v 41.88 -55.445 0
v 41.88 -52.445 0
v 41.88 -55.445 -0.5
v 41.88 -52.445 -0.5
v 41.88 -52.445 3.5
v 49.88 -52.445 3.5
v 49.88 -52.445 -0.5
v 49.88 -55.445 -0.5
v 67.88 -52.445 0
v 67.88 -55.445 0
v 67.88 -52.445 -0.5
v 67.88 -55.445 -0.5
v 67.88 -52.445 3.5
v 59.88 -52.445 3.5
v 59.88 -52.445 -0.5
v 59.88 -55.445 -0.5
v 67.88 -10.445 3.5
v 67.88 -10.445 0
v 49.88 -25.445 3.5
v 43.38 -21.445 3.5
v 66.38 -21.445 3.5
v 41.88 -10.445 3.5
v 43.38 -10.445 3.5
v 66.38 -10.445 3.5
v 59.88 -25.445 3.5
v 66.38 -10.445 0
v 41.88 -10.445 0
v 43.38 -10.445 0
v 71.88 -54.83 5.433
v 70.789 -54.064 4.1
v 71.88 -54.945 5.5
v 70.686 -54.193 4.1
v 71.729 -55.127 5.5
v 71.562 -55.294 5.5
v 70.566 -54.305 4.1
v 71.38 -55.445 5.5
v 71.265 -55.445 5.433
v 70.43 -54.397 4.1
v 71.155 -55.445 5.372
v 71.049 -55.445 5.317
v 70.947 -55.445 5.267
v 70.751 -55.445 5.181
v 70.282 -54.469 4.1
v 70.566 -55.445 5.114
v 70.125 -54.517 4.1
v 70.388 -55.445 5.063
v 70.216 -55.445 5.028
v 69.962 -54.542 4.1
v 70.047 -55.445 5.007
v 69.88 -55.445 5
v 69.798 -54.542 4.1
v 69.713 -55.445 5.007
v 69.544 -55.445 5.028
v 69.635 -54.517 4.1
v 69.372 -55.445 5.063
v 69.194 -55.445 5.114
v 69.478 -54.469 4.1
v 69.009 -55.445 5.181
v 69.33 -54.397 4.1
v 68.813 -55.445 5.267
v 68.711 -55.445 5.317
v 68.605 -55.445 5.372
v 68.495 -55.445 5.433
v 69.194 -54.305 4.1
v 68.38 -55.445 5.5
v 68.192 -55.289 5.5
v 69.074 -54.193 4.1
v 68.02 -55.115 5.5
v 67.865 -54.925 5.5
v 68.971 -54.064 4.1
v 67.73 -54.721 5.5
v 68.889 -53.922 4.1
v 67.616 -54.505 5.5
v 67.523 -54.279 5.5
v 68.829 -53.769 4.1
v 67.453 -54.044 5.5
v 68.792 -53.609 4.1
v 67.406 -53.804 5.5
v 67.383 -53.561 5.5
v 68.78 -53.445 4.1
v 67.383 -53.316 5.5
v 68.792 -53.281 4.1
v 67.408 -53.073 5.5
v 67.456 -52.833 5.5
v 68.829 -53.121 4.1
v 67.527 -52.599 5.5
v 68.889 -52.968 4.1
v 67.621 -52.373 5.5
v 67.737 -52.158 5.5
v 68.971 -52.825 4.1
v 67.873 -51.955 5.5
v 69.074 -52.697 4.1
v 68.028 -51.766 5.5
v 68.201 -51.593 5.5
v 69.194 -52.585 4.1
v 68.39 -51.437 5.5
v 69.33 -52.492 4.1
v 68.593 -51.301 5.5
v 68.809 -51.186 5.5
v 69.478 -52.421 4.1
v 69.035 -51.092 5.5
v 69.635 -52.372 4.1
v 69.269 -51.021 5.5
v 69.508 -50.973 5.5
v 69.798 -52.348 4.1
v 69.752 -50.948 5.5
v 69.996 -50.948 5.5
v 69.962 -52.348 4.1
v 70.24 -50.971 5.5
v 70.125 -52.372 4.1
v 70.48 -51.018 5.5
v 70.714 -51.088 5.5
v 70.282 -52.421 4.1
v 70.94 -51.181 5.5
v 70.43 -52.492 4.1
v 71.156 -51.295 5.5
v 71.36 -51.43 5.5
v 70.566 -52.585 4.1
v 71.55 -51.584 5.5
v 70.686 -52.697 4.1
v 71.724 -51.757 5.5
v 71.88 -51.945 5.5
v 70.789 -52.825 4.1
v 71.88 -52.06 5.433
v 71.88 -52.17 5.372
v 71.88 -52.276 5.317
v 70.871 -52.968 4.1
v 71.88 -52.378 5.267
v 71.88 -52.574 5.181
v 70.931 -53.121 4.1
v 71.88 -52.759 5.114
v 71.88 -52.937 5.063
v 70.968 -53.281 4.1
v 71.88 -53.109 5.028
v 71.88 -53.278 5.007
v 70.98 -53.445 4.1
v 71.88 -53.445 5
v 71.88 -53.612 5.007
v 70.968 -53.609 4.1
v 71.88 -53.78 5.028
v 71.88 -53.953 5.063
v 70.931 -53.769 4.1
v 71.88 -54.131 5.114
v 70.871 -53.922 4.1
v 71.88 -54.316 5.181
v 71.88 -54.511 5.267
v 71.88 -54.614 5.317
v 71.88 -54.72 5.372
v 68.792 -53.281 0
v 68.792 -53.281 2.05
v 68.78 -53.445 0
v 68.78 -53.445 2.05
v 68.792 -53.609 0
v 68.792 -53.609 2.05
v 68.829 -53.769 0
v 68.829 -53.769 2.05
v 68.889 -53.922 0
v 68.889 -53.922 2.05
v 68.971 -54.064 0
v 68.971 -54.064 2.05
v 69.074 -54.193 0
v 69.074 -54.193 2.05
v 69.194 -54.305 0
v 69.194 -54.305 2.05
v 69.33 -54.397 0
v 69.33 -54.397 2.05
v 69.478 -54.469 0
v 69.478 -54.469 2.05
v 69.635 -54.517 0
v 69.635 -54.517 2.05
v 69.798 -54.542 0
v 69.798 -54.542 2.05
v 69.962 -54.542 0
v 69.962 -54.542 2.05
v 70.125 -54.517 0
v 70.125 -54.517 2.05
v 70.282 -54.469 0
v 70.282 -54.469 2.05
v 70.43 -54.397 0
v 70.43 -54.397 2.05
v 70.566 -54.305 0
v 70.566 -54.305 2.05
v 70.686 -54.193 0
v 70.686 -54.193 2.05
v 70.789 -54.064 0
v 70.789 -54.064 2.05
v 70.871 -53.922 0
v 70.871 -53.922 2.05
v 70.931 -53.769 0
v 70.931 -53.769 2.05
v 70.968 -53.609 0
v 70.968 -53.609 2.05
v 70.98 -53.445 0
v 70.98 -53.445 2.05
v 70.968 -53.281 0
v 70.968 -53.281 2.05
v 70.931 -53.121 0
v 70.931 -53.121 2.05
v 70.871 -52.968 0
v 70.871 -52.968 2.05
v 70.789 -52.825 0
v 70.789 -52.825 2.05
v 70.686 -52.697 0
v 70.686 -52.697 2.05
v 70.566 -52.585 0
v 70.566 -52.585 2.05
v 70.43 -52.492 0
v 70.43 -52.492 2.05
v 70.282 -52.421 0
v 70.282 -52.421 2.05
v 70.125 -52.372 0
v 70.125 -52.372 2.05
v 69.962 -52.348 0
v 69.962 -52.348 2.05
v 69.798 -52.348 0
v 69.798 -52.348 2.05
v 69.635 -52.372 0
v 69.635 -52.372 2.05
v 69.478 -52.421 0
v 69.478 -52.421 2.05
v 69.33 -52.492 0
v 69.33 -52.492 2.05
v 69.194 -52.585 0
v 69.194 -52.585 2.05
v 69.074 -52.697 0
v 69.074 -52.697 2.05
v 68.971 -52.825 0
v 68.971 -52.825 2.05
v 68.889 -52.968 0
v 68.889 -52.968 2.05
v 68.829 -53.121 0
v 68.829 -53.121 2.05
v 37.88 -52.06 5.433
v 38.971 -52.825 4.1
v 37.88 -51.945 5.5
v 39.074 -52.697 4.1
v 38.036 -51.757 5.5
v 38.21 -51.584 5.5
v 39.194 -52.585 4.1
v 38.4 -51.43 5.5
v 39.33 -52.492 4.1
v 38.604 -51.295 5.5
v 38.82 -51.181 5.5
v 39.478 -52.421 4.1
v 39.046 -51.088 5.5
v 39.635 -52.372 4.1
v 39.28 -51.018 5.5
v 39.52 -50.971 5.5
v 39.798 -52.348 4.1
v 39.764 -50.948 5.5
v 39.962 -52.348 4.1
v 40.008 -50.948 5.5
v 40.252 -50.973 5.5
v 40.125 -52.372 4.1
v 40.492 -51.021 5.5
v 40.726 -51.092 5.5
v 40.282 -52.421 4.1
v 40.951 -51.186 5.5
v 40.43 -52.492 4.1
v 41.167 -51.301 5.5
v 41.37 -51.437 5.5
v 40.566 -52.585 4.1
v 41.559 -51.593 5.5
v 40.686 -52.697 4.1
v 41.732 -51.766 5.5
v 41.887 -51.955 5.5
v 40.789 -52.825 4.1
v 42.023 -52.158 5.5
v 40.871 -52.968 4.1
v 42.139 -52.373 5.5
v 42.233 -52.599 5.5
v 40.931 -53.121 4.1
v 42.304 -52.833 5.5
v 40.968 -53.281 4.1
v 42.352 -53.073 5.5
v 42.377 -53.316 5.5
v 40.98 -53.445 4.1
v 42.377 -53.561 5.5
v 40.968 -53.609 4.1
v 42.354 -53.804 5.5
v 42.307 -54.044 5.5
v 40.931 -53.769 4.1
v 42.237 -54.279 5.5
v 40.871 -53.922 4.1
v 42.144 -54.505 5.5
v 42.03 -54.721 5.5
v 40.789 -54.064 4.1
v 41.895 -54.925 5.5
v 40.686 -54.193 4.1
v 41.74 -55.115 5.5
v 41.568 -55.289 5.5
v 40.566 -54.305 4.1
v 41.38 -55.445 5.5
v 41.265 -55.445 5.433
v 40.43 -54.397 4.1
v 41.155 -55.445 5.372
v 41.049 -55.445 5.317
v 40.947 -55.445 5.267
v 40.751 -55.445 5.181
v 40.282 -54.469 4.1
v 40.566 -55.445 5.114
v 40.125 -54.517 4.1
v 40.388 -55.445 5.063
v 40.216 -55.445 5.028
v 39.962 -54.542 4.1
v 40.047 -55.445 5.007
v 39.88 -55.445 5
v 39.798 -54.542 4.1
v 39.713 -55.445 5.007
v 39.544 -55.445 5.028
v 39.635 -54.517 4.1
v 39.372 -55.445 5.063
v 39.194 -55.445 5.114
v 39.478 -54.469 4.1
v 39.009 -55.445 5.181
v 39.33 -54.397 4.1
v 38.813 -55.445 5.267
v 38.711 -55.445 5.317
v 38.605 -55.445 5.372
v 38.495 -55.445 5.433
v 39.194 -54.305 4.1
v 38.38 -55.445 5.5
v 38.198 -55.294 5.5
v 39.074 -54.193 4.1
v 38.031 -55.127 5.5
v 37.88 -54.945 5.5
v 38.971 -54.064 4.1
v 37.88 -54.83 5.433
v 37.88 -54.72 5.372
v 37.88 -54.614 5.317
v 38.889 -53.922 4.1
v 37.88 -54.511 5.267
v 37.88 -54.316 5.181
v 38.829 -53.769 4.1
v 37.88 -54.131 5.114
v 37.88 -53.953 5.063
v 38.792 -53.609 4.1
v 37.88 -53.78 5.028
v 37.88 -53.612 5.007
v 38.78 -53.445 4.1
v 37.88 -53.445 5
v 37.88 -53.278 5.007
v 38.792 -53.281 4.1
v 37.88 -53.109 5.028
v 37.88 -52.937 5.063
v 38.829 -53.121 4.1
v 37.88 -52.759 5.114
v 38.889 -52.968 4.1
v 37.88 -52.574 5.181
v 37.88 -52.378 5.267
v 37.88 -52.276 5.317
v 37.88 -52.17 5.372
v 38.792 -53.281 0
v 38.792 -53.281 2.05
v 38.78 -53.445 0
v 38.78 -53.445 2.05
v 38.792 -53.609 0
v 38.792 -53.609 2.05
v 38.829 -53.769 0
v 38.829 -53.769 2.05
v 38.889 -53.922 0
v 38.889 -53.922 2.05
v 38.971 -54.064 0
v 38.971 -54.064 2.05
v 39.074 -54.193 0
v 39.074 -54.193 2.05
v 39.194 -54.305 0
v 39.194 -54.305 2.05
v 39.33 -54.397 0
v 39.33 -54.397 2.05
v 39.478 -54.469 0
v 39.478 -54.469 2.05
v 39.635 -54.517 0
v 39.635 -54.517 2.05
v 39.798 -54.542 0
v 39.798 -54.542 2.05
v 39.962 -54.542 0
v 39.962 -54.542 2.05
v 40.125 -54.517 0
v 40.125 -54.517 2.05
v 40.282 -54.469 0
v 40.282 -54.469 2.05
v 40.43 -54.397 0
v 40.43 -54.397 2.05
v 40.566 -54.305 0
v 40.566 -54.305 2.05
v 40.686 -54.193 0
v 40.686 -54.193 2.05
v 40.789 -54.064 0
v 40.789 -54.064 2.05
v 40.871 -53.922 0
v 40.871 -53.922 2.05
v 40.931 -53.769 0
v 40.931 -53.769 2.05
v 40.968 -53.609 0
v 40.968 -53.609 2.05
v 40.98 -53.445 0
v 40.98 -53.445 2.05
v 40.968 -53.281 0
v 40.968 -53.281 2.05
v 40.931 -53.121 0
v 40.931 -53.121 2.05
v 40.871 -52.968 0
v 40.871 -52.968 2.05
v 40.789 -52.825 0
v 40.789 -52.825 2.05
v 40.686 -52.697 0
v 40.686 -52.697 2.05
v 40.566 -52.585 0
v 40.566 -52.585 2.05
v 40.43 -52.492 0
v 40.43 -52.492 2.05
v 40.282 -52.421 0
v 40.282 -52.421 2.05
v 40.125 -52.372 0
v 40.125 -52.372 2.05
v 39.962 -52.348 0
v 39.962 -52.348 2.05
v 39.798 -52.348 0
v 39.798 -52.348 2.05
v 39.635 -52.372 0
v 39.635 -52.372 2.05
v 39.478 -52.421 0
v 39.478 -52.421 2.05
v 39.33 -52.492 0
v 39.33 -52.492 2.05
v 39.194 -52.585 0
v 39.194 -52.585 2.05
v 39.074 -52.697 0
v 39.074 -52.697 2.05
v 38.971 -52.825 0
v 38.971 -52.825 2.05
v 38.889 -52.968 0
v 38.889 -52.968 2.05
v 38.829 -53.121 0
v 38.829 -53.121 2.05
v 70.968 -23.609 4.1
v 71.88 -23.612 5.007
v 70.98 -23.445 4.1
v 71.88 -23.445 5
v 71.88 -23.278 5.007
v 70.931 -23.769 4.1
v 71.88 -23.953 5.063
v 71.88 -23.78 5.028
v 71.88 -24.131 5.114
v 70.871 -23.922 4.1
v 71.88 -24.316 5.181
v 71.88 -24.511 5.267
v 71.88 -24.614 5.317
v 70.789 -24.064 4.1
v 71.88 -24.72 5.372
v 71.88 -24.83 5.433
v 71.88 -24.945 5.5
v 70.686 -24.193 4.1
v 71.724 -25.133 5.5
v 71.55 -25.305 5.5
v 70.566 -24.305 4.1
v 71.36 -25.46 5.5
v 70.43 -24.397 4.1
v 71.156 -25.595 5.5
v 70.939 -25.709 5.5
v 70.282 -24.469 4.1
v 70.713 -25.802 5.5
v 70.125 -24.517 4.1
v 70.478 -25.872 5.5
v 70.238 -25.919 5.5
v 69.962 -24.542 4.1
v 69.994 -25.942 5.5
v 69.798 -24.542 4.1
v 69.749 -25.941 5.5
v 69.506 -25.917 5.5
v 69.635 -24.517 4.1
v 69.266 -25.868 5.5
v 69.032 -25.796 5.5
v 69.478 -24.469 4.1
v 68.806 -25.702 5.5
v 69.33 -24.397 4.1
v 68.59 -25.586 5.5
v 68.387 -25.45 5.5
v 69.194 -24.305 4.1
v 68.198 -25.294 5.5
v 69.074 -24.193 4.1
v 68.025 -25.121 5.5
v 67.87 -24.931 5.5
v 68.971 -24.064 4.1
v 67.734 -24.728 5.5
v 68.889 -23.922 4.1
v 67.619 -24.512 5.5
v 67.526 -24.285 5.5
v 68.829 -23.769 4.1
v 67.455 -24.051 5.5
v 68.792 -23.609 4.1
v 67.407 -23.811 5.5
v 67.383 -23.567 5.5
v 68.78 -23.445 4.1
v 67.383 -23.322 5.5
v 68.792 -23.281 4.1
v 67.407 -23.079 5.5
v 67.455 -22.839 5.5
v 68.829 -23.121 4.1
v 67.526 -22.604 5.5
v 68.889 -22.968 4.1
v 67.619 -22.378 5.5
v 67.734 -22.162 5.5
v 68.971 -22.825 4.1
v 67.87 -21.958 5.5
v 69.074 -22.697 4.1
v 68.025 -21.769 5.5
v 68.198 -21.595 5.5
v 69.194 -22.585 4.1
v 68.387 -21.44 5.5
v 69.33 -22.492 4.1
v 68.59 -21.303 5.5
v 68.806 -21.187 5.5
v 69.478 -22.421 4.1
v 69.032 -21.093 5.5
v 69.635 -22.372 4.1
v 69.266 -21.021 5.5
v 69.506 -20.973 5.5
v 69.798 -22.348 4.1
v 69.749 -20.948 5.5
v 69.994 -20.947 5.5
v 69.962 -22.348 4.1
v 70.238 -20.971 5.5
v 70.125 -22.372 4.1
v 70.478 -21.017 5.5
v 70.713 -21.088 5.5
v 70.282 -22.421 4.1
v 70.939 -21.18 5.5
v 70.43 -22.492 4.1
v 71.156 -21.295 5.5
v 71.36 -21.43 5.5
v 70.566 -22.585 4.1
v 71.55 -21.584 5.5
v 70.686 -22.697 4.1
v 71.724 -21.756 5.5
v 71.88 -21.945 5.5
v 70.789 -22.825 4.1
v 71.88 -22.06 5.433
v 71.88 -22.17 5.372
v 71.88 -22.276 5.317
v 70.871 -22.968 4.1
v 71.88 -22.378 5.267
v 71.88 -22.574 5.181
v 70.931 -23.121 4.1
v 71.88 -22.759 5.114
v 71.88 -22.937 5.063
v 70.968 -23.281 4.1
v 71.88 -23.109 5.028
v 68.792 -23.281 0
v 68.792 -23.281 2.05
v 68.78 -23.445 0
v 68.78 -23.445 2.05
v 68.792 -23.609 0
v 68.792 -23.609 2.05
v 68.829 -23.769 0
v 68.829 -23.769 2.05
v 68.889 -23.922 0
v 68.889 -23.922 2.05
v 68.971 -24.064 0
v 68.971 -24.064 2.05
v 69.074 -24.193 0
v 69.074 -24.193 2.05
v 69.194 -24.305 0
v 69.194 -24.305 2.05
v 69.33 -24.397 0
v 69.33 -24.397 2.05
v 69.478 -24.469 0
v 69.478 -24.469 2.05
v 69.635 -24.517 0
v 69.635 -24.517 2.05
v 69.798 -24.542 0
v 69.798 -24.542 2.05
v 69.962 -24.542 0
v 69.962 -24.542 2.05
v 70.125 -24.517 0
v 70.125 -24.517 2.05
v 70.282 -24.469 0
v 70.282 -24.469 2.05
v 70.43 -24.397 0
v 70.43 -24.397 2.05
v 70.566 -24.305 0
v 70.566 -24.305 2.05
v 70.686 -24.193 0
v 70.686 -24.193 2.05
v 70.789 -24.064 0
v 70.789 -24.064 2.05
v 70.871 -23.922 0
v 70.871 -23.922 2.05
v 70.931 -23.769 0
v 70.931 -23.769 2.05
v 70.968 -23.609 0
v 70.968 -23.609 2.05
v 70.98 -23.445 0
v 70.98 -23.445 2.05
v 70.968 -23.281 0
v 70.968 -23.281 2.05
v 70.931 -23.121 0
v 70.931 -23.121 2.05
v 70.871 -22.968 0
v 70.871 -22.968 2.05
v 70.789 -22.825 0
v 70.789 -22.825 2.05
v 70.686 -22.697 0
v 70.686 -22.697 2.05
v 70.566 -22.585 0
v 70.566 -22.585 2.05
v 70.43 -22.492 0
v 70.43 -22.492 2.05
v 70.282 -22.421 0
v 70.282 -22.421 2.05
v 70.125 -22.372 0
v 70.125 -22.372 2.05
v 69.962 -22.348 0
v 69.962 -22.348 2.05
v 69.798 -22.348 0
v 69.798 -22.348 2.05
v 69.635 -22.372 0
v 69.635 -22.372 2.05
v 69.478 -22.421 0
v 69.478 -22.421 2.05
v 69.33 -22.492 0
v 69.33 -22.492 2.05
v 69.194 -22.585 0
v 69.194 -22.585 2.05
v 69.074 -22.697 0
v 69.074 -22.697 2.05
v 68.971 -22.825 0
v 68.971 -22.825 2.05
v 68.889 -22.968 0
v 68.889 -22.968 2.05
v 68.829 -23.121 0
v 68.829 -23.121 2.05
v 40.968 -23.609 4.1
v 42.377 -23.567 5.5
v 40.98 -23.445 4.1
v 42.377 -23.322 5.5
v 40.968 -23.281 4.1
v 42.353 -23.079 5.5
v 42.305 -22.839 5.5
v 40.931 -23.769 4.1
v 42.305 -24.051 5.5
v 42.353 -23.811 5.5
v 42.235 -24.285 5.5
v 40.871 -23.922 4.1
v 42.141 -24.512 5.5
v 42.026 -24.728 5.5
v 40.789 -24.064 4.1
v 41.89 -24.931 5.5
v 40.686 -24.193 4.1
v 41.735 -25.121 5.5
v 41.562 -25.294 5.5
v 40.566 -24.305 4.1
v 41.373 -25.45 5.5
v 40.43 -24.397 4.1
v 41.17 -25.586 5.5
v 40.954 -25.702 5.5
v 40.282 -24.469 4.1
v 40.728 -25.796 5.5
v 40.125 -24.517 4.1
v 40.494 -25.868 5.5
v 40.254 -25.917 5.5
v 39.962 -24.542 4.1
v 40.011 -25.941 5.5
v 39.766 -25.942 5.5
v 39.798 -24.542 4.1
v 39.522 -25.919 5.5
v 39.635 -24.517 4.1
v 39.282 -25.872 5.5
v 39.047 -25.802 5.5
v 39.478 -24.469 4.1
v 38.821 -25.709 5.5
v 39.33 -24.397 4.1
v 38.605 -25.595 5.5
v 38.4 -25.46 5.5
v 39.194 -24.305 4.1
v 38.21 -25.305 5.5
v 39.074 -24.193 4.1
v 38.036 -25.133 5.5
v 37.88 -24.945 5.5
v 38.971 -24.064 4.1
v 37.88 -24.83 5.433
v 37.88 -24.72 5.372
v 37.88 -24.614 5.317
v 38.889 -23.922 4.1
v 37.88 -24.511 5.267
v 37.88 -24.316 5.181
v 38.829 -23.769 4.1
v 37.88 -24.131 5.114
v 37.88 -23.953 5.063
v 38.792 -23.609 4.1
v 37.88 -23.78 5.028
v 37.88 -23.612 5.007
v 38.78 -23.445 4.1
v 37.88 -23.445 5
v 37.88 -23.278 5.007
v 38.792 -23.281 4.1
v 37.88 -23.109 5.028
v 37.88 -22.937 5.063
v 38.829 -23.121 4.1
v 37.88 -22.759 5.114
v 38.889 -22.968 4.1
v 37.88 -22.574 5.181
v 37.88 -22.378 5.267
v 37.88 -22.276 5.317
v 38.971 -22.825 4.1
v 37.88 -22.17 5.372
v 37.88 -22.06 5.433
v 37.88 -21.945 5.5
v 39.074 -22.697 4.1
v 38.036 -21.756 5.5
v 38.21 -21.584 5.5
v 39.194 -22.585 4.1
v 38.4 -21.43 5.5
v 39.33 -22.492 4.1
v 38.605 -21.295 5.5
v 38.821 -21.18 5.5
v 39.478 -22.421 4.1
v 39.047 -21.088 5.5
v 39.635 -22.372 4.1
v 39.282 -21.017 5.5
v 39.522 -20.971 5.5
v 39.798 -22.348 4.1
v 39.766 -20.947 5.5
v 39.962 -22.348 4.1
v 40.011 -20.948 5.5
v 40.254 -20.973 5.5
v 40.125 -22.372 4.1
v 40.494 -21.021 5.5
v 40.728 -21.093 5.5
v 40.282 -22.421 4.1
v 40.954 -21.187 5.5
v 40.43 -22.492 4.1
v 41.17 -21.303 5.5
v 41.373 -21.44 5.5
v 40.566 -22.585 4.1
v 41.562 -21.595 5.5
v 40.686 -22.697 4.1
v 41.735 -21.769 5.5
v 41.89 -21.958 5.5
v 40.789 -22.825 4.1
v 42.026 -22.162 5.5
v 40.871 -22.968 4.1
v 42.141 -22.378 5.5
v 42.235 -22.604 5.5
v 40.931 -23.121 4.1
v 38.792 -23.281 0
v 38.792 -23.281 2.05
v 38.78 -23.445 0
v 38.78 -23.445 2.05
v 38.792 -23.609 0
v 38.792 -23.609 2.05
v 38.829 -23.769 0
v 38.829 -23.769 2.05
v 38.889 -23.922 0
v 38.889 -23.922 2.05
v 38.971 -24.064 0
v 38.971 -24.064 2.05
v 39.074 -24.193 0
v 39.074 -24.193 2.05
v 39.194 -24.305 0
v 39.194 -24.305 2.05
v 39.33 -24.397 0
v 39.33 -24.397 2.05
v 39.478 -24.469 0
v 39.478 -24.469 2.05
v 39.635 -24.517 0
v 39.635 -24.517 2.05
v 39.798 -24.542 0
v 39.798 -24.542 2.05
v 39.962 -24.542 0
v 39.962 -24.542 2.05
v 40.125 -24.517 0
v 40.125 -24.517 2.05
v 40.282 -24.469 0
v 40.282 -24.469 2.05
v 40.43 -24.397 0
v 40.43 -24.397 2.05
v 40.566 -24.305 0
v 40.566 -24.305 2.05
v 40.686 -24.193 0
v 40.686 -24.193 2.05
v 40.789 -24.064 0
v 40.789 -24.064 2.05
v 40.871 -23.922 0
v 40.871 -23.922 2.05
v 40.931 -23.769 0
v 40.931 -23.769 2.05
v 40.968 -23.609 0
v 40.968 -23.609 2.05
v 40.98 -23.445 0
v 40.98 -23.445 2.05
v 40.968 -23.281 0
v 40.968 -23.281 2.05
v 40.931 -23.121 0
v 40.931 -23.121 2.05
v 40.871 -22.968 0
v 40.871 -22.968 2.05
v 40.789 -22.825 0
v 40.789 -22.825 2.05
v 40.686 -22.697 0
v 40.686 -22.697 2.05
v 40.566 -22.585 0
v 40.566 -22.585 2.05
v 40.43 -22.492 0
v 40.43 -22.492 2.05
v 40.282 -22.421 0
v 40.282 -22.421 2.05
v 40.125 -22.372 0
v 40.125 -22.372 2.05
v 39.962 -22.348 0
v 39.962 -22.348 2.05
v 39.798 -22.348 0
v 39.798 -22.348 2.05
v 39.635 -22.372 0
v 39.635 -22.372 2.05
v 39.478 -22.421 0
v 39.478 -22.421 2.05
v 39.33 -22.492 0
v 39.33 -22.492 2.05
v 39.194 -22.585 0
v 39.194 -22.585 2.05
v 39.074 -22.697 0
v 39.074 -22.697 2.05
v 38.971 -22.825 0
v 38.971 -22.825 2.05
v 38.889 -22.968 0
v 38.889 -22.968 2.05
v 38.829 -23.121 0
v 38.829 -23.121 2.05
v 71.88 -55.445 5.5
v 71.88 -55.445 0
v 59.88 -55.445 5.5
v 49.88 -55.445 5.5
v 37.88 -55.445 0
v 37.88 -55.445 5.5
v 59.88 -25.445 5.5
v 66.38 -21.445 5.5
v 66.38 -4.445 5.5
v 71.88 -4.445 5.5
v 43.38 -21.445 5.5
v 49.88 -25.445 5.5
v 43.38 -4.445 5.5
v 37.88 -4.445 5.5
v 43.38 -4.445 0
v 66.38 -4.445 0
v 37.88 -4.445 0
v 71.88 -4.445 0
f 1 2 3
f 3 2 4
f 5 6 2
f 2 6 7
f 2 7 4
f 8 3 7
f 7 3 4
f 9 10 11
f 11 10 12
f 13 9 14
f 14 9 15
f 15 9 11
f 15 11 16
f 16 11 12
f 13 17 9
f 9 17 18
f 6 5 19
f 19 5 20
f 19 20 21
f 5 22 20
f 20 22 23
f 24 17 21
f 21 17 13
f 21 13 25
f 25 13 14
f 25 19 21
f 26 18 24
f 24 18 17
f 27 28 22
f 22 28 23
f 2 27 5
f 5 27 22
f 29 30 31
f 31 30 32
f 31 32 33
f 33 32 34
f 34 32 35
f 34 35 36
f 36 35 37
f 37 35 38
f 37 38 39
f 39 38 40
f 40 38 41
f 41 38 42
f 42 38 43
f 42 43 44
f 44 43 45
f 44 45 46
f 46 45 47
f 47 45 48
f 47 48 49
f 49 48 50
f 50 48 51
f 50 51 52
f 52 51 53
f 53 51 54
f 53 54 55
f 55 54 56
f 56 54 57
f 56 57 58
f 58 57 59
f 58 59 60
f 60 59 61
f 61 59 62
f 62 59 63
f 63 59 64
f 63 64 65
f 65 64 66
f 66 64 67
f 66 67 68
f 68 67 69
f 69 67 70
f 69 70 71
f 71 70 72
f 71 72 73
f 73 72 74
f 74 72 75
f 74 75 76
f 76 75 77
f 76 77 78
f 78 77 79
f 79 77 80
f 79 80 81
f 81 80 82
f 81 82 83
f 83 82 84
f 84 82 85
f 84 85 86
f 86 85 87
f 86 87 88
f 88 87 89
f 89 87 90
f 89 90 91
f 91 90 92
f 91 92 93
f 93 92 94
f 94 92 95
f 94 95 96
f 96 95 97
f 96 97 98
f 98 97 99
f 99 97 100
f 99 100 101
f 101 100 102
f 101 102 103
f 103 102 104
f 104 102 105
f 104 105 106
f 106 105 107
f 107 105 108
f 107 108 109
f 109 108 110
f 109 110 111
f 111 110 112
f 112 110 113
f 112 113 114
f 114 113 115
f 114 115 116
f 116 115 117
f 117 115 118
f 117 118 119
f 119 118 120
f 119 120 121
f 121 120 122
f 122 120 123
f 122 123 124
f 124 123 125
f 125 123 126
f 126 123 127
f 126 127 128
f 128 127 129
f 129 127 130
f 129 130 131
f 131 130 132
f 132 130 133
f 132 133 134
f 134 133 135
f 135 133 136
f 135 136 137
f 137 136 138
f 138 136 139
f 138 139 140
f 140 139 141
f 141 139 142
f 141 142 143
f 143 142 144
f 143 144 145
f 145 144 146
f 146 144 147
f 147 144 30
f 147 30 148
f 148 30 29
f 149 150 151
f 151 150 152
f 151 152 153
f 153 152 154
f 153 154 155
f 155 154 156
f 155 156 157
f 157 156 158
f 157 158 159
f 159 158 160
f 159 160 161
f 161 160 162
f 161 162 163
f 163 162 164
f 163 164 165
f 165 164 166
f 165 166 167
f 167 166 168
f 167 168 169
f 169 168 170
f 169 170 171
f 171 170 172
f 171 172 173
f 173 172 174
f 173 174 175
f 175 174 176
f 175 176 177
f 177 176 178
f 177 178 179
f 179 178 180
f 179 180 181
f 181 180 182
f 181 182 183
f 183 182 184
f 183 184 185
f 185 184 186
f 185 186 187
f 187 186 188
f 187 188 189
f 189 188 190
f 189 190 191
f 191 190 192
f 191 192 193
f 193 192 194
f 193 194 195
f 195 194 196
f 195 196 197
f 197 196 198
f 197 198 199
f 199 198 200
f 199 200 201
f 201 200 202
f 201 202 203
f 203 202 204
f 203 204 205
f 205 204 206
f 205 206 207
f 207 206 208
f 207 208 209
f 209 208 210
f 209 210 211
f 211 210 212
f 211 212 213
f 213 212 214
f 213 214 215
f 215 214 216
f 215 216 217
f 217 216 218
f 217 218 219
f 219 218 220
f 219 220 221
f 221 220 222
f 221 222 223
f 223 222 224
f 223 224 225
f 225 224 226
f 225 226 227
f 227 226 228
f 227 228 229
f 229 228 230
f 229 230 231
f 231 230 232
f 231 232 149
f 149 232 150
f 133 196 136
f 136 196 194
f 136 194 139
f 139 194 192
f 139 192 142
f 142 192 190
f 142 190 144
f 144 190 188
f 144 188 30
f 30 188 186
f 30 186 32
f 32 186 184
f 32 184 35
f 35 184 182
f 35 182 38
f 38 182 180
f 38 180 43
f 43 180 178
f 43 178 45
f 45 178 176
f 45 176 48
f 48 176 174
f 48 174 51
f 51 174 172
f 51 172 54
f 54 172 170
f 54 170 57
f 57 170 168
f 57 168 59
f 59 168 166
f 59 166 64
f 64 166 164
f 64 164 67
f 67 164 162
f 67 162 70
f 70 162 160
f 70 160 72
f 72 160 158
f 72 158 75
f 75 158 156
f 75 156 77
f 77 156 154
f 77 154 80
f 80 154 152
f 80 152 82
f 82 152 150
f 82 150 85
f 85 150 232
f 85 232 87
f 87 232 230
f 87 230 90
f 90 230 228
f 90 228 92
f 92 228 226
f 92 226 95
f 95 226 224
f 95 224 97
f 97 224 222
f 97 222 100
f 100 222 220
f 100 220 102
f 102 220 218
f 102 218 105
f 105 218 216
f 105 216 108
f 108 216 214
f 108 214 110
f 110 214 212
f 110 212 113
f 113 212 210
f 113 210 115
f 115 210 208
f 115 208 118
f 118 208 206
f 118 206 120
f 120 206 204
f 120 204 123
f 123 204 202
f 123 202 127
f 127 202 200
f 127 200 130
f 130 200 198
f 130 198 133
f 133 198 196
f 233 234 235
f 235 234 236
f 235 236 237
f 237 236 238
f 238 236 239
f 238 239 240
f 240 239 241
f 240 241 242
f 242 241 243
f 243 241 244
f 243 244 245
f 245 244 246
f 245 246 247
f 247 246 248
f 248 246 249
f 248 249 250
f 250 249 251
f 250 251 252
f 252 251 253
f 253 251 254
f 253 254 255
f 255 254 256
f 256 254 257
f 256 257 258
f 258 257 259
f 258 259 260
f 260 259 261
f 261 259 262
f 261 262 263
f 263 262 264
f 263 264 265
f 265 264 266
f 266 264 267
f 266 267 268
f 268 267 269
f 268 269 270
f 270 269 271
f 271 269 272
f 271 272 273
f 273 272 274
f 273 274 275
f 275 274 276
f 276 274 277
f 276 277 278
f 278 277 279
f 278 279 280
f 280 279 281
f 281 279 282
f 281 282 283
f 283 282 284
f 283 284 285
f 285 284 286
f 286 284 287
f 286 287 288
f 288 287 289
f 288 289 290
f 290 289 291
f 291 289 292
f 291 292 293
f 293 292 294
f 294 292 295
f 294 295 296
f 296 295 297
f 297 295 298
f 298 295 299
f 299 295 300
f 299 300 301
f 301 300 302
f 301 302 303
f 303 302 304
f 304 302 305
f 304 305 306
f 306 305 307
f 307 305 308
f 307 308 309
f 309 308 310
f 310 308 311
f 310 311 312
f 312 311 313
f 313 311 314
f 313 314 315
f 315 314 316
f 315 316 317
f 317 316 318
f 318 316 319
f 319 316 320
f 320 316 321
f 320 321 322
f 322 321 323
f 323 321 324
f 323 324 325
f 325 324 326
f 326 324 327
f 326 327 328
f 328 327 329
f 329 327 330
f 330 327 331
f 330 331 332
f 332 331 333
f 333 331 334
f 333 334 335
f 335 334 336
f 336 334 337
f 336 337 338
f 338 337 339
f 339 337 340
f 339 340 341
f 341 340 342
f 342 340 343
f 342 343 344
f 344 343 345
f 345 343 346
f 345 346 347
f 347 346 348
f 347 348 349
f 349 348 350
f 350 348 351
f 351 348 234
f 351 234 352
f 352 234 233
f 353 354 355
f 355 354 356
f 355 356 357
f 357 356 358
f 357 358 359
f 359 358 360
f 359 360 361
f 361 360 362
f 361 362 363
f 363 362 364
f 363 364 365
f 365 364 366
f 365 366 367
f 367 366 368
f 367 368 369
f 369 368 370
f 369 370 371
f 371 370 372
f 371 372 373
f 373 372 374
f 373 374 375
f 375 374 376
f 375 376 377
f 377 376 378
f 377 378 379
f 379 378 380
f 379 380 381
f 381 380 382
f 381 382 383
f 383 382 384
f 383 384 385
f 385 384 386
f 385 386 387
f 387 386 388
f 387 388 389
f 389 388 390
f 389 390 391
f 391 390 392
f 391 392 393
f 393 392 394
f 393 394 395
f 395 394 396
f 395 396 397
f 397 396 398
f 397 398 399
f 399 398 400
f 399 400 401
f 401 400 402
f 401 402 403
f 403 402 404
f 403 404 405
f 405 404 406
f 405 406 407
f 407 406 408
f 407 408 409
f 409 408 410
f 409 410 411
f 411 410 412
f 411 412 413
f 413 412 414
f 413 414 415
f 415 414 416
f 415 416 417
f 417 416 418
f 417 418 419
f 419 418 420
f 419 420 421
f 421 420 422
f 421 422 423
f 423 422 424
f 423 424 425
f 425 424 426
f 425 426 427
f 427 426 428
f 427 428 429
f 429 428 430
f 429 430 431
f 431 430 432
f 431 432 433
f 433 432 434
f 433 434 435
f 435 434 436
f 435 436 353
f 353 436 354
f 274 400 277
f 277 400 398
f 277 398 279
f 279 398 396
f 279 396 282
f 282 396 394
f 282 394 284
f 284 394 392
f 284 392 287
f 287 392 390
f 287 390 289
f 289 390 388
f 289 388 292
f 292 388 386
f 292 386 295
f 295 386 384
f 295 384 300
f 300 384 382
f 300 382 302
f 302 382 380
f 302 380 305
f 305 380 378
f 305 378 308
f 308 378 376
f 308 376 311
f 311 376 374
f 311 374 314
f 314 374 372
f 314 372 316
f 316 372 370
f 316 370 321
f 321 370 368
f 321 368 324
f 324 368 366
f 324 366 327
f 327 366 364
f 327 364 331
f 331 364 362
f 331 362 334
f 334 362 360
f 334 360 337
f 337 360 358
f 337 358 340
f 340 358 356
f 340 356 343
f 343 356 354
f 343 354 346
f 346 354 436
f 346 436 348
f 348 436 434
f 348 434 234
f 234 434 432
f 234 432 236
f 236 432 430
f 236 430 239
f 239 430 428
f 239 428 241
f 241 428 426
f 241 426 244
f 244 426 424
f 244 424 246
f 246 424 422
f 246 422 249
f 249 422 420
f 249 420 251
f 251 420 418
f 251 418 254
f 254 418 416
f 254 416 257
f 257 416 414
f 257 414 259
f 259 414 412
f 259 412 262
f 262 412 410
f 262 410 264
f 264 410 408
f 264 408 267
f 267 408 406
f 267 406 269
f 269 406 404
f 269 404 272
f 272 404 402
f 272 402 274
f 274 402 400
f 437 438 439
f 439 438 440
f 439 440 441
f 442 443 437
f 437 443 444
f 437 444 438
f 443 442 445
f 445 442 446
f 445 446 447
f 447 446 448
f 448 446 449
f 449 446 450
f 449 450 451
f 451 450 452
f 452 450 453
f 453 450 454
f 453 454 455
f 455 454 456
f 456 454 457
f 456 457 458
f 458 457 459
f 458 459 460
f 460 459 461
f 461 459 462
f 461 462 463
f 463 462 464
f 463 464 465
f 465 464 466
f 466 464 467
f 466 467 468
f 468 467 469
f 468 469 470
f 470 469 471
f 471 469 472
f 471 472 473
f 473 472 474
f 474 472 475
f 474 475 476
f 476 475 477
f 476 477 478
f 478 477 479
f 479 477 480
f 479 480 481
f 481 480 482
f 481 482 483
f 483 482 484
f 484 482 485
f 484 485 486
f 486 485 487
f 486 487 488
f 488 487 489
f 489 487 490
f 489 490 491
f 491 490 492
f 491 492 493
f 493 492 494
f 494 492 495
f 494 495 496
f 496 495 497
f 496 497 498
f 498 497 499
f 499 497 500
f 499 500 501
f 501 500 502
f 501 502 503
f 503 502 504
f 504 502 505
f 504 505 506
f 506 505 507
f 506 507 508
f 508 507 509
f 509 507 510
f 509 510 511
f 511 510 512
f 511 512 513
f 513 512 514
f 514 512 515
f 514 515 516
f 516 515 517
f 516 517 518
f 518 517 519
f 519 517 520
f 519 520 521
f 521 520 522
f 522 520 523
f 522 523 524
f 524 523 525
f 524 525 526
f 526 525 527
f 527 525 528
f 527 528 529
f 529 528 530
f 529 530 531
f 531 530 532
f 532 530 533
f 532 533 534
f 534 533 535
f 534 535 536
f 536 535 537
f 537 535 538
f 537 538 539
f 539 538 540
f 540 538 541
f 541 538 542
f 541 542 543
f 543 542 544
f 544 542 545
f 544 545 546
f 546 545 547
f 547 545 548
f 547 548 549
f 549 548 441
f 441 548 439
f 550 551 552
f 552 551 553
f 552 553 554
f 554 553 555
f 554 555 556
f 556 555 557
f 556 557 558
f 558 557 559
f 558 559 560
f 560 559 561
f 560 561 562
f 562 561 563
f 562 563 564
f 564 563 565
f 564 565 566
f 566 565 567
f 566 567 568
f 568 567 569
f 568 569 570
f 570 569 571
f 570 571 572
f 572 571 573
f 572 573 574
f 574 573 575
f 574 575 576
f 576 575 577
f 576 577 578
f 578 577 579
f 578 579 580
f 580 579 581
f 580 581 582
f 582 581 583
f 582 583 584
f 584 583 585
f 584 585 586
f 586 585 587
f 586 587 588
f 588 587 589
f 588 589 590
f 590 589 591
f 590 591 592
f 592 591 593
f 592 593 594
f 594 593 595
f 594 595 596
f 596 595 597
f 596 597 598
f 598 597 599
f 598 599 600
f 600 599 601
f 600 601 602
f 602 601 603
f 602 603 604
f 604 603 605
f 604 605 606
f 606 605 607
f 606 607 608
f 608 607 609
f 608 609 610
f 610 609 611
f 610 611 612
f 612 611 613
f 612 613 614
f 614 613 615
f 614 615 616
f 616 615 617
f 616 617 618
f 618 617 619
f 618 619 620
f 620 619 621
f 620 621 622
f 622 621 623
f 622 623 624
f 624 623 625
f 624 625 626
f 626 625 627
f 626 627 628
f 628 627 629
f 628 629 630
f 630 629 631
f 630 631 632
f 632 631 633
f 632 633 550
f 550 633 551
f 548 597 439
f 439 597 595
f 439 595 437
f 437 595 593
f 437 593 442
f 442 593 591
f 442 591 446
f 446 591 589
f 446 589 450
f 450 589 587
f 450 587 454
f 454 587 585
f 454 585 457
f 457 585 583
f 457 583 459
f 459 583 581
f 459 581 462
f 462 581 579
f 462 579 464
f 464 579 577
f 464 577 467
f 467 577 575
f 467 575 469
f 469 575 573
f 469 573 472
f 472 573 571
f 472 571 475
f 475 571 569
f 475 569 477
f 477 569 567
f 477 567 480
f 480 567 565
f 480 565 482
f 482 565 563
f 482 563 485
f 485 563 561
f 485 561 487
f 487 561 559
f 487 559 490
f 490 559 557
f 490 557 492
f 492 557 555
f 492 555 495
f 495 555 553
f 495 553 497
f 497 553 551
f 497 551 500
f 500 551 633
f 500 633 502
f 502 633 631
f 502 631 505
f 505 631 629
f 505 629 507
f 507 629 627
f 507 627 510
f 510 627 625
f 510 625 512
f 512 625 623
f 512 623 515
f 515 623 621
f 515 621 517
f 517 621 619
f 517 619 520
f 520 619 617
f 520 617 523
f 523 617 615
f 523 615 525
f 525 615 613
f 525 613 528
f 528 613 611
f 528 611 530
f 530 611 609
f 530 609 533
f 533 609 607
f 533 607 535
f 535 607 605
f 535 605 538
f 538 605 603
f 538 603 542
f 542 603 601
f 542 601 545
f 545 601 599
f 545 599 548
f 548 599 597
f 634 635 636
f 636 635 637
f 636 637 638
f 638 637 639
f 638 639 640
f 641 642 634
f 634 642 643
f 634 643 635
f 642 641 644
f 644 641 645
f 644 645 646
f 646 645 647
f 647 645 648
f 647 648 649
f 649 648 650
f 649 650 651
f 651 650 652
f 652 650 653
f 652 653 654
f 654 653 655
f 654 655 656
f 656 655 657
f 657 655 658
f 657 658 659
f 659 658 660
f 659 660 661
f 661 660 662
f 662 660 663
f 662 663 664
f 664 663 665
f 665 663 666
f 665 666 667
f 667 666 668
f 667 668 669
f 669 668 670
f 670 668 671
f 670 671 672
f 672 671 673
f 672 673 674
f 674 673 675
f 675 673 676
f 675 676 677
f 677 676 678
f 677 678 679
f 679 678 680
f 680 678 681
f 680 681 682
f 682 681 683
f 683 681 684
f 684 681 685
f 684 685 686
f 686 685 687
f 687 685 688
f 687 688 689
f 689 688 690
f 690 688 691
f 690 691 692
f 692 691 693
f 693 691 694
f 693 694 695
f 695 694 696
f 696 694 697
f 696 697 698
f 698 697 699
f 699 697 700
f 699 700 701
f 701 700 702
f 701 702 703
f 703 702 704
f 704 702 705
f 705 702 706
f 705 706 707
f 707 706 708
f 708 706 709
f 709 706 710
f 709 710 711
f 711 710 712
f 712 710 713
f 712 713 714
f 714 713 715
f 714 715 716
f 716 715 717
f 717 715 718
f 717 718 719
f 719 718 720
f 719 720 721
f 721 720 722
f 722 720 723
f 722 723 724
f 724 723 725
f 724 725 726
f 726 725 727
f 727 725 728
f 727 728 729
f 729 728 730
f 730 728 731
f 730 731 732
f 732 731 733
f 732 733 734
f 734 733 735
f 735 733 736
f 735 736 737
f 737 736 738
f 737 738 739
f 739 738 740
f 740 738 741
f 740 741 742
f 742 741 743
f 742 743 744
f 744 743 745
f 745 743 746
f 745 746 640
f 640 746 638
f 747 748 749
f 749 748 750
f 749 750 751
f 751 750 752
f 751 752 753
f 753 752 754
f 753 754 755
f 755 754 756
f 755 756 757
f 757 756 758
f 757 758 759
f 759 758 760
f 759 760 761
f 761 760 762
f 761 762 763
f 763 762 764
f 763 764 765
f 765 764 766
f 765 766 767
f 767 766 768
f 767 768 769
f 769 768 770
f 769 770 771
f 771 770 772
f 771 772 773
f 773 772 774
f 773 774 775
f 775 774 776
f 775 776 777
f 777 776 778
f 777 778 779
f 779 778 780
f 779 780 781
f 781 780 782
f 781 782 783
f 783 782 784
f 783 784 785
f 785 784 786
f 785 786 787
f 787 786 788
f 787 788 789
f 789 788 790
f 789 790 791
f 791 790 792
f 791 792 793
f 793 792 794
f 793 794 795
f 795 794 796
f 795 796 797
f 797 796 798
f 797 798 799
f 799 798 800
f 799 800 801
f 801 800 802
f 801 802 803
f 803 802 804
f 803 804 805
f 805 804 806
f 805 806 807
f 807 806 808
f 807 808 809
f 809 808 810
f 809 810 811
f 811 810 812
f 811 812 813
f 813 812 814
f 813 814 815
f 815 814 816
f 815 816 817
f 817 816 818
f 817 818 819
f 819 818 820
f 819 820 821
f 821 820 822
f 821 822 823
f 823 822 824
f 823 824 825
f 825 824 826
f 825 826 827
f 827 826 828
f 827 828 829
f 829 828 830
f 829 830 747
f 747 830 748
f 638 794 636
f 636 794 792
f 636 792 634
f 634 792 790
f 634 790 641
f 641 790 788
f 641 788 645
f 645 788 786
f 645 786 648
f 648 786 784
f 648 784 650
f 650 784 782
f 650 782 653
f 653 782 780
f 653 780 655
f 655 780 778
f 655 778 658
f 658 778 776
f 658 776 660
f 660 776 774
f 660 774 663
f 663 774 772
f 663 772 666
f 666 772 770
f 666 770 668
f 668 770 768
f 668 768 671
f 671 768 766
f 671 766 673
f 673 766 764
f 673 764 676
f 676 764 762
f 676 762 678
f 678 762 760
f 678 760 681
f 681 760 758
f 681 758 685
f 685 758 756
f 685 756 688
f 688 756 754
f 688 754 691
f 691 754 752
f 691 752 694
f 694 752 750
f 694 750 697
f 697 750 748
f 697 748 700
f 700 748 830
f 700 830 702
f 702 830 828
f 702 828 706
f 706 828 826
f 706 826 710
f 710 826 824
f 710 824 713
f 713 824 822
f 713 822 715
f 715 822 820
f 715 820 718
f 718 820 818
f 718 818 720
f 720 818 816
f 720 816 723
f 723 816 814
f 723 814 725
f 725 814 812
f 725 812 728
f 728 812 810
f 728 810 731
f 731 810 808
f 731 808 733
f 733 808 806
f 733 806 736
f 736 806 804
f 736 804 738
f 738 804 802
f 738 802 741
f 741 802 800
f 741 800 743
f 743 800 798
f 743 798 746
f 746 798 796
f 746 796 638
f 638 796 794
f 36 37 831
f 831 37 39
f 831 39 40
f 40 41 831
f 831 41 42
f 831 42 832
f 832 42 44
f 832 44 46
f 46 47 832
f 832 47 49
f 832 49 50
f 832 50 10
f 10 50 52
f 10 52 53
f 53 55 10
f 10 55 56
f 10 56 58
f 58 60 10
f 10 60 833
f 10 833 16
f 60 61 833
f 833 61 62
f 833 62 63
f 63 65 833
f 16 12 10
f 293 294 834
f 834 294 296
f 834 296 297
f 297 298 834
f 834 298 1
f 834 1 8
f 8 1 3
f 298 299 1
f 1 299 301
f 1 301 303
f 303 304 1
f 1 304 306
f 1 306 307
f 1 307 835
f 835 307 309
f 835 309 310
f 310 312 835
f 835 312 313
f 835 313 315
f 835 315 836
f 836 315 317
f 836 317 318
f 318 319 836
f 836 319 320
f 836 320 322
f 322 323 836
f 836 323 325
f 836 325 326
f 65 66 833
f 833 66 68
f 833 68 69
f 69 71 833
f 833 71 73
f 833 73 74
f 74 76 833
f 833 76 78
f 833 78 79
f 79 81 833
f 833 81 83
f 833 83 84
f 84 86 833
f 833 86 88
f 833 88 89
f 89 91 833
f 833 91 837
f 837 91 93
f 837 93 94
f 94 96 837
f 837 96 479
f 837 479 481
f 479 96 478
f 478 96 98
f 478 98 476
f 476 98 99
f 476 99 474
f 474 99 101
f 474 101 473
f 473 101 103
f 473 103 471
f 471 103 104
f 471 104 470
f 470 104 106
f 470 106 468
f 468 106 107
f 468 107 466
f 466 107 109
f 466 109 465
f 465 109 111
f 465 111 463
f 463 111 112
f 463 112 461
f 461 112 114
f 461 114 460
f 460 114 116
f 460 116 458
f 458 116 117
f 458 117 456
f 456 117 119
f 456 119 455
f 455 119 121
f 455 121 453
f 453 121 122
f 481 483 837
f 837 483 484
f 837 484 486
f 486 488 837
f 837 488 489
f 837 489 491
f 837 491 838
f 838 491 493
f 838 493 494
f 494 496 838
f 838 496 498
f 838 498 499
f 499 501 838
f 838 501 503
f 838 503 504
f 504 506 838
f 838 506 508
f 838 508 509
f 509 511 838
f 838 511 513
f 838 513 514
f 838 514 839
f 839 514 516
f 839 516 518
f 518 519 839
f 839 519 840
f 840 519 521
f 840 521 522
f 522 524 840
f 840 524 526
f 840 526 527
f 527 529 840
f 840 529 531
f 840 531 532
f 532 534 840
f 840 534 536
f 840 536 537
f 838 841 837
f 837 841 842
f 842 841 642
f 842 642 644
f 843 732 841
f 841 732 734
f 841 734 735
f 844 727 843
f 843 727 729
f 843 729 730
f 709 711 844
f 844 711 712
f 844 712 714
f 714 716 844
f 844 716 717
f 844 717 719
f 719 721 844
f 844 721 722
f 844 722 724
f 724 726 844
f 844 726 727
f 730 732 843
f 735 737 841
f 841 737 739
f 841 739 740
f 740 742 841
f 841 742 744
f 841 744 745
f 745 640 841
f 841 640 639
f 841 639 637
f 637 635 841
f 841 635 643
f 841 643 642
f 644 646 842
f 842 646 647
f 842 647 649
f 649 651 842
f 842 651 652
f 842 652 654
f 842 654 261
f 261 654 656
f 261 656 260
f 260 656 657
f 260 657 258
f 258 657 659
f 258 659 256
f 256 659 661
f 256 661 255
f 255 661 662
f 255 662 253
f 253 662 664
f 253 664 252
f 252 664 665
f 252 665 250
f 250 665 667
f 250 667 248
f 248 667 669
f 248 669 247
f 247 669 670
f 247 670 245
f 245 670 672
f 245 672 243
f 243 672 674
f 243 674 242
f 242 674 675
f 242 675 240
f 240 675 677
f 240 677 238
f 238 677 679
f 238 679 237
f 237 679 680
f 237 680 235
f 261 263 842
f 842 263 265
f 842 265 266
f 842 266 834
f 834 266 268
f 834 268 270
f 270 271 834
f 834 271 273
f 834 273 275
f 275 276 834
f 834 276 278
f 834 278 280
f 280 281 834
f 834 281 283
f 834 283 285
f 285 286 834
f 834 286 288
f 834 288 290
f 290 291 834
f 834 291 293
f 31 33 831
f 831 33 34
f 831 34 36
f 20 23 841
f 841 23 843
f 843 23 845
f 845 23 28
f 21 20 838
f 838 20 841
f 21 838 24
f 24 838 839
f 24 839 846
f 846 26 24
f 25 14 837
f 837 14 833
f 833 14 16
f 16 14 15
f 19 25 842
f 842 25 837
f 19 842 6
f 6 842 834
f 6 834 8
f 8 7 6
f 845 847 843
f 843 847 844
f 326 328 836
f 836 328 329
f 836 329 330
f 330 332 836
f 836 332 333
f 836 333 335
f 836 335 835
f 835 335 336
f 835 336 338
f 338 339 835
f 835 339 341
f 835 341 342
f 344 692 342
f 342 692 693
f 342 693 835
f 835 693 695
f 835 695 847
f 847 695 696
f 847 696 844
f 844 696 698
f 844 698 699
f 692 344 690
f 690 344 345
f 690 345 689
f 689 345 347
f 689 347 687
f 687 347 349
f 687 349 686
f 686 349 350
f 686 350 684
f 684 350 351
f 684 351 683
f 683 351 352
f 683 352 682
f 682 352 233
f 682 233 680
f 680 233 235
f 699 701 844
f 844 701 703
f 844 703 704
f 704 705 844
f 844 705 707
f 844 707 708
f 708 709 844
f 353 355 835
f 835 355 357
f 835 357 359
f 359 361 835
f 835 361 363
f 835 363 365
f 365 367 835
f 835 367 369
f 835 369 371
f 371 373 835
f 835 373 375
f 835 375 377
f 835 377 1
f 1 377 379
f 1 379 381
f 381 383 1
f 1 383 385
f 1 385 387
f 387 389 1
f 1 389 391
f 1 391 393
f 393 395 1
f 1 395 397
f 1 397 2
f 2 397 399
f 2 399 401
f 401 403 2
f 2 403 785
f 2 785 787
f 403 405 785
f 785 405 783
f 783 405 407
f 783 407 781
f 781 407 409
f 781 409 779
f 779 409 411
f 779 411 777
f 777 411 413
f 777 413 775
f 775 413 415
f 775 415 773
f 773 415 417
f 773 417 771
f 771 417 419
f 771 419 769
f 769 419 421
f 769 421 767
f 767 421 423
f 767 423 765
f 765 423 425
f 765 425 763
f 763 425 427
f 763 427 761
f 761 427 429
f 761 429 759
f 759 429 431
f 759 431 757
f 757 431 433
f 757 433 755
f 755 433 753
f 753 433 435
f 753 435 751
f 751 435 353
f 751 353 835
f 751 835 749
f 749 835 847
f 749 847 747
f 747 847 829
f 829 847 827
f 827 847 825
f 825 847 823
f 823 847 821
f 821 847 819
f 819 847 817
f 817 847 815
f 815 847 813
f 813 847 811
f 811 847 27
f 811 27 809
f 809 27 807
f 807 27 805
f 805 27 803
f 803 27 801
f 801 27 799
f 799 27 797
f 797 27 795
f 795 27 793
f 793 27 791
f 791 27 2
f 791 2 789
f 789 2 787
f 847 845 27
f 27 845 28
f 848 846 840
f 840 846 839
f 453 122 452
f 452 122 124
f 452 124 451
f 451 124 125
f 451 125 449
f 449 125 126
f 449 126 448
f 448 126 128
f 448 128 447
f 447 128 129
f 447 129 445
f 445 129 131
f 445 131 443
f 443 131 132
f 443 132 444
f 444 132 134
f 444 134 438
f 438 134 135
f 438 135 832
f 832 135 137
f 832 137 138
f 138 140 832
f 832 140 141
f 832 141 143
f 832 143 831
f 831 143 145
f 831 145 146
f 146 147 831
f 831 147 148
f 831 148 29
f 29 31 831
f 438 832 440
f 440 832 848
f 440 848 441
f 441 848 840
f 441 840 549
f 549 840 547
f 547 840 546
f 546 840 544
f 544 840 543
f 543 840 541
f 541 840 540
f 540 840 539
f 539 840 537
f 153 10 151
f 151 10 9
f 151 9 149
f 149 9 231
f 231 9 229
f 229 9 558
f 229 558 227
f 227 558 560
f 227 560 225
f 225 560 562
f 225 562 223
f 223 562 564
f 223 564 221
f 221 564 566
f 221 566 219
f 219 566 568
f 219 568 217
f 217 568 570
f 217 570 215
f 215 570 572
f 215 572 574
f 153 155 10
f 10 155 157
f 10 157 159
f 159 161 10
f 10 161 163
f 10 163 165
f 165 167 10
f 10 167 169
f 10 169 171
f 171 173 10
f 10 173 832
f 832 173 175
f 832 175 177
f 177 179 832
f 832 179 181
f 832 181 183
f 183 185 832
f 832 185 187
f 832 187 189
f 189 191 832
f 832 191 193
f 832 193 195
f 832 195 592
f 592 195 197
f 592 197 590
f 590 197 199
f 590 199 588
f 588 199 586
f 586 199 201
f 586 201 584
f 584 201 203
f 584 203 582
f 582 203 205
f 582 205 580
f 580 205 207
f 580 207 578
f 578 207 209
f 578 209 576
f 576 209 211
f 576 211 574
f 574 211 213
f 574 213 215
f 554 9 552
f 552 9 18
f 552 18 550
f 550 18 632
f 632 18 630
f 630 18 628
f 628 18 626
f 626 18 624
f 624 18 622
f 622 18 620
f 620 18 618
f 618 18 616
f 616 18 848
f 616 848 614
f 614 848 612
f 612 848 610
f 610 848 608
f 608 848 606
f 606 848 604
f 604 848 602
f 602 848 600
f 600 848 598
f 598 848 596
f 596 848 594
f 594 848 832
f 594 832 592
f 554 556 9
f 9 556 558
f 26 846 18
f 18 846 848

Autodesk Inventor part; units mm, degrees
ref_plane "YZ Plane" through (0, 0, 0) normal (1, 0, 0) x (0, 1, 0)
ref_plane "XZ Plane" through (0, 0, 0) normal (0, 1, 0) x (-1, 0, 0)
ref_plane "XY Plane" through (0, 0, 0) normal (0, 0, 1) x (1, 0, 0)
sketch "Skizze1" plane through (0, 0, 0) normal (0, 0, 1) x (1, 0, 0)
  line L0 (71.8801, -4.4448) -> (67.8801, -4.4448)
  line L1 (67.8801, -4.4448) -> (67.8801, -55.4448)
  line L2 (67.8801, -55.4448) -> (71.8801, -55.4448)
  line L3 (71.8801, -55.4448) -> (71.8801, -4.4448)
  line L4 (67.8801, -55.4448) -> (41.8801, -55.4448)
  line L5 (41.8801, -55.4448) -> (41.8801, -4.4448)
  line L6 (41.8801, -4.4448) -> (67.8801, -4.4448)
  line L7 (67.8801, -4.4448) -> (67.8801, -55.4448)
  line L8 (41.8801, -55.4448) -> (37.8801, -55.4448)
  line L9 (37.8801, -55.4448) -> (37.8801, -4.4448)
  line L10 (37.8801, -4.4448) -> (41.8801, -4.4448)
  line L11 (41.8801, -4.4448) -> (41.8801, -55.4448)
  point P0 (0, 0)
  dimension "d0" = 4
  dimension "d1" = 51
  dimension "d2" = 26
  dimension "d3" = 4
extrude "Extrusion1" add sketch "Skizze1" along normal blind 3.5 contours L3 L2 L1 L0 | L5 L8 L9 L10
sketch "Skizze2" plane through (0, 0, 3.5) normal (0, 0, 1) x (1, 0, 0)
  line L0 (71.8801, -55.4448) -> (37.8801, -55.4448)
  line L1 (71.8801, -4.4448) -> (37.8801, -4.4448)
  line L2 (37.8801, -4.4448) -> (37.8801, -55.4448) projected
  line L3 (71.8801, -55.4448) -> (71.8801, -4.4448) projected
  line L4 (43.3801, -4.4448) -> (66.3801, -4.4448)
  line L5 (66.3801, -4.4448) -> (66.3801, -21.4448)
  line L6 (66.3801, -21.4448) -> (43.3801, -21.4448)
  line L7 (43.3801, -21.4448) -> (43.3801, -4.4448)
  line L8 (41.8801, -55.4448) -> (67.8801, -55.4448)
  line L9 (59.8801, -55.4448) -> (59.8801, -25.4448)
  line L10 (59.8801, -25.4448) -> (49.8801, -25.4448)
  line L11 (49.8801, -25.4448) -> (49.8801, -55.4448)
  line L12 (41.8801, -55.4448) -> (67.8801, -55.4448)
  line L13 (67.8801, -55.4448) -> (67.8801, -55.4448)
  line L14 (67.8801, -55.4448) -> (41.8801, -55.4448)
  line L15 (41.8801, -55.4448) -> (41.8801, -55.4448)
  line L16 (54.8801, -55.4448) -> (54.8801, -25.4448) construction
  point P0 (0, 0)
  point P1 (54.8801, -4.4448)
  point P2 (67.8801, -45.4448)
  dimension "d38" = 23
  dimension "d39" = 17
  dimension "d44" = 4
  dimension "d47" = 26
  dimension "d54" = 10
extrude "Extrusion2" add sketch "Skizze2" along normal blind 2 contours L0 L9 L10 L11 L2 L1 L7 L6 L5 L3
sketch "Skizze3" plane through (0, 0, 5.5) normal (0, 0, 1) x (1, 0, 0)
  line L0 (37.8801, -4.4448) -> (37.8801, -55.4448) projected
  line L1 (39.8801, -23.4448) -> (37.8801, -23.4448) construction
  line L2 (39.8801, -23.4448) -> (41.8801, -23.4448) construction
  line L3 (39.8801, -23.4448) -> (39.8801, -4.4448) construction
  line L4 (69.8801, -23.4448) -> (71.8801, -23.4448) construction
  line L5 (71.8801, -4.4448) -> (37.8801, -4.4448) construction
  line L6 (71.8801, -55.4448) -> (71.8801, -4.4448) projected
  line L7 (71.8801, -55.4448) -> (37.8801, -55.4448)
  line L8 (37.8801, -55.4448) -> (71.8801, -55.4448) projected
  line L9 (39.8801, -53.4448) -> (39.8801, -23.4448)
  line L10 (69.8801, -53.4448) -> (69.8801, -23.4448)
  line L11 (67.8801, -4.4448) -> (67.8801, -55.4448) projected
  line L12 (39.8801, -53.4448) -> (39.8801, -55.4448)
  line L13 (69.8801, -53.4448) -> (69.8801, -55.4448)
  point P0 (0, 0)
  dimension "d24" = 2
  dimension "d37" = 19
hole "Bohrung1" at (39.8801, -23.4448, 5.5) at (69.8801, -23.4448, 5.5) at (39.8801, -53.4448, 5.5) at (69.8801, -53.4448, 5.5) direction (0, 0, -1) diameter 2.2 end through all countersink diameter 5 countersink angle 90
sketch "Skizze6" plane through (0, 0, 3.5) normal (0, 0, -1) x (-1, 0, 0)
  line L0 (-67.8801, -4.4448) -> (-67.8801, -55.4448) projected
  line L1 (-66.3801, -4.4448) -> (-66.3801, -21.4448) projected
  line L2 (-67.8801, -4.4448) -> (-66.3801, -4.4448)
  line L3 (-66.3801, -4.4448) -> (-66.3801, -10.4448)
  line L4 (-66.3801, -10.4448) -> (-67.8801, -10.4448)
  line L5 (-67.8801, -10.4448) -> (-67.8801, -4.4448)
  line L6 (-43.3801, -21.4448) -> (-43.3801, -4.4448) projected
  line L7 (-41.8801, -55.4448) -> (-41.8801, -4.4448) projected
  line L8 (-43.3801, -4.4448) -> (-41.8801, -4.4448)
  line L9 (-41.8801, -4.4448) -> (-41.8801, -10.4448)
  line L10 (-41.8801, -10.4448) -> (-43.3801, -10.4448)
  line L11 (-43.3801, -10.4448) -> (-43.3801, -4.4448)
  line L12 (-41.8801, -55.4448) -> (-49.8801, -55.4448)
  line L13 (-49.8801, -55.4448) -> (-49.8801, -52.4448)
  line L14 (-49.8801, -52.4448) -> (-41.8801, -52.4448)
  line L15 (-41.8801, -52.4448) -> (-41.8801, -55.4448)
  line L16 (-59.8801, -52.4448) -> (-59.8801, -55.4448) projected
  line L17 (-67.8801, -55.4448) -> (-59.8801, -55.4448)
  line L18 (-59.8801, -55.4448) -> (-59.8801, -52.4448)
  line L19 (-59.8801, -52.4448) -> (-67.8801, -52.4448)
  line L20 (-67.8801, -52.4448) -> (-67.8801, -55.4448)
  point P0 (0, 0)
  dimension "d48" = 6
extrude "Extrusion5" add sketch "Skizze6" along normal up to surface (3.5 mm away) contours L2 L1 L4 L0 | L6 L8 L7 L10
extrude "Extrusion6" add sketch "Skizze6" along normal blind 4 contours L19 L16 L17 L0 | L7 L12 L13 L14
properties part number "Sliderhalter" material "PC/ABS-Kunststoff, 3DDruck, PLA"
